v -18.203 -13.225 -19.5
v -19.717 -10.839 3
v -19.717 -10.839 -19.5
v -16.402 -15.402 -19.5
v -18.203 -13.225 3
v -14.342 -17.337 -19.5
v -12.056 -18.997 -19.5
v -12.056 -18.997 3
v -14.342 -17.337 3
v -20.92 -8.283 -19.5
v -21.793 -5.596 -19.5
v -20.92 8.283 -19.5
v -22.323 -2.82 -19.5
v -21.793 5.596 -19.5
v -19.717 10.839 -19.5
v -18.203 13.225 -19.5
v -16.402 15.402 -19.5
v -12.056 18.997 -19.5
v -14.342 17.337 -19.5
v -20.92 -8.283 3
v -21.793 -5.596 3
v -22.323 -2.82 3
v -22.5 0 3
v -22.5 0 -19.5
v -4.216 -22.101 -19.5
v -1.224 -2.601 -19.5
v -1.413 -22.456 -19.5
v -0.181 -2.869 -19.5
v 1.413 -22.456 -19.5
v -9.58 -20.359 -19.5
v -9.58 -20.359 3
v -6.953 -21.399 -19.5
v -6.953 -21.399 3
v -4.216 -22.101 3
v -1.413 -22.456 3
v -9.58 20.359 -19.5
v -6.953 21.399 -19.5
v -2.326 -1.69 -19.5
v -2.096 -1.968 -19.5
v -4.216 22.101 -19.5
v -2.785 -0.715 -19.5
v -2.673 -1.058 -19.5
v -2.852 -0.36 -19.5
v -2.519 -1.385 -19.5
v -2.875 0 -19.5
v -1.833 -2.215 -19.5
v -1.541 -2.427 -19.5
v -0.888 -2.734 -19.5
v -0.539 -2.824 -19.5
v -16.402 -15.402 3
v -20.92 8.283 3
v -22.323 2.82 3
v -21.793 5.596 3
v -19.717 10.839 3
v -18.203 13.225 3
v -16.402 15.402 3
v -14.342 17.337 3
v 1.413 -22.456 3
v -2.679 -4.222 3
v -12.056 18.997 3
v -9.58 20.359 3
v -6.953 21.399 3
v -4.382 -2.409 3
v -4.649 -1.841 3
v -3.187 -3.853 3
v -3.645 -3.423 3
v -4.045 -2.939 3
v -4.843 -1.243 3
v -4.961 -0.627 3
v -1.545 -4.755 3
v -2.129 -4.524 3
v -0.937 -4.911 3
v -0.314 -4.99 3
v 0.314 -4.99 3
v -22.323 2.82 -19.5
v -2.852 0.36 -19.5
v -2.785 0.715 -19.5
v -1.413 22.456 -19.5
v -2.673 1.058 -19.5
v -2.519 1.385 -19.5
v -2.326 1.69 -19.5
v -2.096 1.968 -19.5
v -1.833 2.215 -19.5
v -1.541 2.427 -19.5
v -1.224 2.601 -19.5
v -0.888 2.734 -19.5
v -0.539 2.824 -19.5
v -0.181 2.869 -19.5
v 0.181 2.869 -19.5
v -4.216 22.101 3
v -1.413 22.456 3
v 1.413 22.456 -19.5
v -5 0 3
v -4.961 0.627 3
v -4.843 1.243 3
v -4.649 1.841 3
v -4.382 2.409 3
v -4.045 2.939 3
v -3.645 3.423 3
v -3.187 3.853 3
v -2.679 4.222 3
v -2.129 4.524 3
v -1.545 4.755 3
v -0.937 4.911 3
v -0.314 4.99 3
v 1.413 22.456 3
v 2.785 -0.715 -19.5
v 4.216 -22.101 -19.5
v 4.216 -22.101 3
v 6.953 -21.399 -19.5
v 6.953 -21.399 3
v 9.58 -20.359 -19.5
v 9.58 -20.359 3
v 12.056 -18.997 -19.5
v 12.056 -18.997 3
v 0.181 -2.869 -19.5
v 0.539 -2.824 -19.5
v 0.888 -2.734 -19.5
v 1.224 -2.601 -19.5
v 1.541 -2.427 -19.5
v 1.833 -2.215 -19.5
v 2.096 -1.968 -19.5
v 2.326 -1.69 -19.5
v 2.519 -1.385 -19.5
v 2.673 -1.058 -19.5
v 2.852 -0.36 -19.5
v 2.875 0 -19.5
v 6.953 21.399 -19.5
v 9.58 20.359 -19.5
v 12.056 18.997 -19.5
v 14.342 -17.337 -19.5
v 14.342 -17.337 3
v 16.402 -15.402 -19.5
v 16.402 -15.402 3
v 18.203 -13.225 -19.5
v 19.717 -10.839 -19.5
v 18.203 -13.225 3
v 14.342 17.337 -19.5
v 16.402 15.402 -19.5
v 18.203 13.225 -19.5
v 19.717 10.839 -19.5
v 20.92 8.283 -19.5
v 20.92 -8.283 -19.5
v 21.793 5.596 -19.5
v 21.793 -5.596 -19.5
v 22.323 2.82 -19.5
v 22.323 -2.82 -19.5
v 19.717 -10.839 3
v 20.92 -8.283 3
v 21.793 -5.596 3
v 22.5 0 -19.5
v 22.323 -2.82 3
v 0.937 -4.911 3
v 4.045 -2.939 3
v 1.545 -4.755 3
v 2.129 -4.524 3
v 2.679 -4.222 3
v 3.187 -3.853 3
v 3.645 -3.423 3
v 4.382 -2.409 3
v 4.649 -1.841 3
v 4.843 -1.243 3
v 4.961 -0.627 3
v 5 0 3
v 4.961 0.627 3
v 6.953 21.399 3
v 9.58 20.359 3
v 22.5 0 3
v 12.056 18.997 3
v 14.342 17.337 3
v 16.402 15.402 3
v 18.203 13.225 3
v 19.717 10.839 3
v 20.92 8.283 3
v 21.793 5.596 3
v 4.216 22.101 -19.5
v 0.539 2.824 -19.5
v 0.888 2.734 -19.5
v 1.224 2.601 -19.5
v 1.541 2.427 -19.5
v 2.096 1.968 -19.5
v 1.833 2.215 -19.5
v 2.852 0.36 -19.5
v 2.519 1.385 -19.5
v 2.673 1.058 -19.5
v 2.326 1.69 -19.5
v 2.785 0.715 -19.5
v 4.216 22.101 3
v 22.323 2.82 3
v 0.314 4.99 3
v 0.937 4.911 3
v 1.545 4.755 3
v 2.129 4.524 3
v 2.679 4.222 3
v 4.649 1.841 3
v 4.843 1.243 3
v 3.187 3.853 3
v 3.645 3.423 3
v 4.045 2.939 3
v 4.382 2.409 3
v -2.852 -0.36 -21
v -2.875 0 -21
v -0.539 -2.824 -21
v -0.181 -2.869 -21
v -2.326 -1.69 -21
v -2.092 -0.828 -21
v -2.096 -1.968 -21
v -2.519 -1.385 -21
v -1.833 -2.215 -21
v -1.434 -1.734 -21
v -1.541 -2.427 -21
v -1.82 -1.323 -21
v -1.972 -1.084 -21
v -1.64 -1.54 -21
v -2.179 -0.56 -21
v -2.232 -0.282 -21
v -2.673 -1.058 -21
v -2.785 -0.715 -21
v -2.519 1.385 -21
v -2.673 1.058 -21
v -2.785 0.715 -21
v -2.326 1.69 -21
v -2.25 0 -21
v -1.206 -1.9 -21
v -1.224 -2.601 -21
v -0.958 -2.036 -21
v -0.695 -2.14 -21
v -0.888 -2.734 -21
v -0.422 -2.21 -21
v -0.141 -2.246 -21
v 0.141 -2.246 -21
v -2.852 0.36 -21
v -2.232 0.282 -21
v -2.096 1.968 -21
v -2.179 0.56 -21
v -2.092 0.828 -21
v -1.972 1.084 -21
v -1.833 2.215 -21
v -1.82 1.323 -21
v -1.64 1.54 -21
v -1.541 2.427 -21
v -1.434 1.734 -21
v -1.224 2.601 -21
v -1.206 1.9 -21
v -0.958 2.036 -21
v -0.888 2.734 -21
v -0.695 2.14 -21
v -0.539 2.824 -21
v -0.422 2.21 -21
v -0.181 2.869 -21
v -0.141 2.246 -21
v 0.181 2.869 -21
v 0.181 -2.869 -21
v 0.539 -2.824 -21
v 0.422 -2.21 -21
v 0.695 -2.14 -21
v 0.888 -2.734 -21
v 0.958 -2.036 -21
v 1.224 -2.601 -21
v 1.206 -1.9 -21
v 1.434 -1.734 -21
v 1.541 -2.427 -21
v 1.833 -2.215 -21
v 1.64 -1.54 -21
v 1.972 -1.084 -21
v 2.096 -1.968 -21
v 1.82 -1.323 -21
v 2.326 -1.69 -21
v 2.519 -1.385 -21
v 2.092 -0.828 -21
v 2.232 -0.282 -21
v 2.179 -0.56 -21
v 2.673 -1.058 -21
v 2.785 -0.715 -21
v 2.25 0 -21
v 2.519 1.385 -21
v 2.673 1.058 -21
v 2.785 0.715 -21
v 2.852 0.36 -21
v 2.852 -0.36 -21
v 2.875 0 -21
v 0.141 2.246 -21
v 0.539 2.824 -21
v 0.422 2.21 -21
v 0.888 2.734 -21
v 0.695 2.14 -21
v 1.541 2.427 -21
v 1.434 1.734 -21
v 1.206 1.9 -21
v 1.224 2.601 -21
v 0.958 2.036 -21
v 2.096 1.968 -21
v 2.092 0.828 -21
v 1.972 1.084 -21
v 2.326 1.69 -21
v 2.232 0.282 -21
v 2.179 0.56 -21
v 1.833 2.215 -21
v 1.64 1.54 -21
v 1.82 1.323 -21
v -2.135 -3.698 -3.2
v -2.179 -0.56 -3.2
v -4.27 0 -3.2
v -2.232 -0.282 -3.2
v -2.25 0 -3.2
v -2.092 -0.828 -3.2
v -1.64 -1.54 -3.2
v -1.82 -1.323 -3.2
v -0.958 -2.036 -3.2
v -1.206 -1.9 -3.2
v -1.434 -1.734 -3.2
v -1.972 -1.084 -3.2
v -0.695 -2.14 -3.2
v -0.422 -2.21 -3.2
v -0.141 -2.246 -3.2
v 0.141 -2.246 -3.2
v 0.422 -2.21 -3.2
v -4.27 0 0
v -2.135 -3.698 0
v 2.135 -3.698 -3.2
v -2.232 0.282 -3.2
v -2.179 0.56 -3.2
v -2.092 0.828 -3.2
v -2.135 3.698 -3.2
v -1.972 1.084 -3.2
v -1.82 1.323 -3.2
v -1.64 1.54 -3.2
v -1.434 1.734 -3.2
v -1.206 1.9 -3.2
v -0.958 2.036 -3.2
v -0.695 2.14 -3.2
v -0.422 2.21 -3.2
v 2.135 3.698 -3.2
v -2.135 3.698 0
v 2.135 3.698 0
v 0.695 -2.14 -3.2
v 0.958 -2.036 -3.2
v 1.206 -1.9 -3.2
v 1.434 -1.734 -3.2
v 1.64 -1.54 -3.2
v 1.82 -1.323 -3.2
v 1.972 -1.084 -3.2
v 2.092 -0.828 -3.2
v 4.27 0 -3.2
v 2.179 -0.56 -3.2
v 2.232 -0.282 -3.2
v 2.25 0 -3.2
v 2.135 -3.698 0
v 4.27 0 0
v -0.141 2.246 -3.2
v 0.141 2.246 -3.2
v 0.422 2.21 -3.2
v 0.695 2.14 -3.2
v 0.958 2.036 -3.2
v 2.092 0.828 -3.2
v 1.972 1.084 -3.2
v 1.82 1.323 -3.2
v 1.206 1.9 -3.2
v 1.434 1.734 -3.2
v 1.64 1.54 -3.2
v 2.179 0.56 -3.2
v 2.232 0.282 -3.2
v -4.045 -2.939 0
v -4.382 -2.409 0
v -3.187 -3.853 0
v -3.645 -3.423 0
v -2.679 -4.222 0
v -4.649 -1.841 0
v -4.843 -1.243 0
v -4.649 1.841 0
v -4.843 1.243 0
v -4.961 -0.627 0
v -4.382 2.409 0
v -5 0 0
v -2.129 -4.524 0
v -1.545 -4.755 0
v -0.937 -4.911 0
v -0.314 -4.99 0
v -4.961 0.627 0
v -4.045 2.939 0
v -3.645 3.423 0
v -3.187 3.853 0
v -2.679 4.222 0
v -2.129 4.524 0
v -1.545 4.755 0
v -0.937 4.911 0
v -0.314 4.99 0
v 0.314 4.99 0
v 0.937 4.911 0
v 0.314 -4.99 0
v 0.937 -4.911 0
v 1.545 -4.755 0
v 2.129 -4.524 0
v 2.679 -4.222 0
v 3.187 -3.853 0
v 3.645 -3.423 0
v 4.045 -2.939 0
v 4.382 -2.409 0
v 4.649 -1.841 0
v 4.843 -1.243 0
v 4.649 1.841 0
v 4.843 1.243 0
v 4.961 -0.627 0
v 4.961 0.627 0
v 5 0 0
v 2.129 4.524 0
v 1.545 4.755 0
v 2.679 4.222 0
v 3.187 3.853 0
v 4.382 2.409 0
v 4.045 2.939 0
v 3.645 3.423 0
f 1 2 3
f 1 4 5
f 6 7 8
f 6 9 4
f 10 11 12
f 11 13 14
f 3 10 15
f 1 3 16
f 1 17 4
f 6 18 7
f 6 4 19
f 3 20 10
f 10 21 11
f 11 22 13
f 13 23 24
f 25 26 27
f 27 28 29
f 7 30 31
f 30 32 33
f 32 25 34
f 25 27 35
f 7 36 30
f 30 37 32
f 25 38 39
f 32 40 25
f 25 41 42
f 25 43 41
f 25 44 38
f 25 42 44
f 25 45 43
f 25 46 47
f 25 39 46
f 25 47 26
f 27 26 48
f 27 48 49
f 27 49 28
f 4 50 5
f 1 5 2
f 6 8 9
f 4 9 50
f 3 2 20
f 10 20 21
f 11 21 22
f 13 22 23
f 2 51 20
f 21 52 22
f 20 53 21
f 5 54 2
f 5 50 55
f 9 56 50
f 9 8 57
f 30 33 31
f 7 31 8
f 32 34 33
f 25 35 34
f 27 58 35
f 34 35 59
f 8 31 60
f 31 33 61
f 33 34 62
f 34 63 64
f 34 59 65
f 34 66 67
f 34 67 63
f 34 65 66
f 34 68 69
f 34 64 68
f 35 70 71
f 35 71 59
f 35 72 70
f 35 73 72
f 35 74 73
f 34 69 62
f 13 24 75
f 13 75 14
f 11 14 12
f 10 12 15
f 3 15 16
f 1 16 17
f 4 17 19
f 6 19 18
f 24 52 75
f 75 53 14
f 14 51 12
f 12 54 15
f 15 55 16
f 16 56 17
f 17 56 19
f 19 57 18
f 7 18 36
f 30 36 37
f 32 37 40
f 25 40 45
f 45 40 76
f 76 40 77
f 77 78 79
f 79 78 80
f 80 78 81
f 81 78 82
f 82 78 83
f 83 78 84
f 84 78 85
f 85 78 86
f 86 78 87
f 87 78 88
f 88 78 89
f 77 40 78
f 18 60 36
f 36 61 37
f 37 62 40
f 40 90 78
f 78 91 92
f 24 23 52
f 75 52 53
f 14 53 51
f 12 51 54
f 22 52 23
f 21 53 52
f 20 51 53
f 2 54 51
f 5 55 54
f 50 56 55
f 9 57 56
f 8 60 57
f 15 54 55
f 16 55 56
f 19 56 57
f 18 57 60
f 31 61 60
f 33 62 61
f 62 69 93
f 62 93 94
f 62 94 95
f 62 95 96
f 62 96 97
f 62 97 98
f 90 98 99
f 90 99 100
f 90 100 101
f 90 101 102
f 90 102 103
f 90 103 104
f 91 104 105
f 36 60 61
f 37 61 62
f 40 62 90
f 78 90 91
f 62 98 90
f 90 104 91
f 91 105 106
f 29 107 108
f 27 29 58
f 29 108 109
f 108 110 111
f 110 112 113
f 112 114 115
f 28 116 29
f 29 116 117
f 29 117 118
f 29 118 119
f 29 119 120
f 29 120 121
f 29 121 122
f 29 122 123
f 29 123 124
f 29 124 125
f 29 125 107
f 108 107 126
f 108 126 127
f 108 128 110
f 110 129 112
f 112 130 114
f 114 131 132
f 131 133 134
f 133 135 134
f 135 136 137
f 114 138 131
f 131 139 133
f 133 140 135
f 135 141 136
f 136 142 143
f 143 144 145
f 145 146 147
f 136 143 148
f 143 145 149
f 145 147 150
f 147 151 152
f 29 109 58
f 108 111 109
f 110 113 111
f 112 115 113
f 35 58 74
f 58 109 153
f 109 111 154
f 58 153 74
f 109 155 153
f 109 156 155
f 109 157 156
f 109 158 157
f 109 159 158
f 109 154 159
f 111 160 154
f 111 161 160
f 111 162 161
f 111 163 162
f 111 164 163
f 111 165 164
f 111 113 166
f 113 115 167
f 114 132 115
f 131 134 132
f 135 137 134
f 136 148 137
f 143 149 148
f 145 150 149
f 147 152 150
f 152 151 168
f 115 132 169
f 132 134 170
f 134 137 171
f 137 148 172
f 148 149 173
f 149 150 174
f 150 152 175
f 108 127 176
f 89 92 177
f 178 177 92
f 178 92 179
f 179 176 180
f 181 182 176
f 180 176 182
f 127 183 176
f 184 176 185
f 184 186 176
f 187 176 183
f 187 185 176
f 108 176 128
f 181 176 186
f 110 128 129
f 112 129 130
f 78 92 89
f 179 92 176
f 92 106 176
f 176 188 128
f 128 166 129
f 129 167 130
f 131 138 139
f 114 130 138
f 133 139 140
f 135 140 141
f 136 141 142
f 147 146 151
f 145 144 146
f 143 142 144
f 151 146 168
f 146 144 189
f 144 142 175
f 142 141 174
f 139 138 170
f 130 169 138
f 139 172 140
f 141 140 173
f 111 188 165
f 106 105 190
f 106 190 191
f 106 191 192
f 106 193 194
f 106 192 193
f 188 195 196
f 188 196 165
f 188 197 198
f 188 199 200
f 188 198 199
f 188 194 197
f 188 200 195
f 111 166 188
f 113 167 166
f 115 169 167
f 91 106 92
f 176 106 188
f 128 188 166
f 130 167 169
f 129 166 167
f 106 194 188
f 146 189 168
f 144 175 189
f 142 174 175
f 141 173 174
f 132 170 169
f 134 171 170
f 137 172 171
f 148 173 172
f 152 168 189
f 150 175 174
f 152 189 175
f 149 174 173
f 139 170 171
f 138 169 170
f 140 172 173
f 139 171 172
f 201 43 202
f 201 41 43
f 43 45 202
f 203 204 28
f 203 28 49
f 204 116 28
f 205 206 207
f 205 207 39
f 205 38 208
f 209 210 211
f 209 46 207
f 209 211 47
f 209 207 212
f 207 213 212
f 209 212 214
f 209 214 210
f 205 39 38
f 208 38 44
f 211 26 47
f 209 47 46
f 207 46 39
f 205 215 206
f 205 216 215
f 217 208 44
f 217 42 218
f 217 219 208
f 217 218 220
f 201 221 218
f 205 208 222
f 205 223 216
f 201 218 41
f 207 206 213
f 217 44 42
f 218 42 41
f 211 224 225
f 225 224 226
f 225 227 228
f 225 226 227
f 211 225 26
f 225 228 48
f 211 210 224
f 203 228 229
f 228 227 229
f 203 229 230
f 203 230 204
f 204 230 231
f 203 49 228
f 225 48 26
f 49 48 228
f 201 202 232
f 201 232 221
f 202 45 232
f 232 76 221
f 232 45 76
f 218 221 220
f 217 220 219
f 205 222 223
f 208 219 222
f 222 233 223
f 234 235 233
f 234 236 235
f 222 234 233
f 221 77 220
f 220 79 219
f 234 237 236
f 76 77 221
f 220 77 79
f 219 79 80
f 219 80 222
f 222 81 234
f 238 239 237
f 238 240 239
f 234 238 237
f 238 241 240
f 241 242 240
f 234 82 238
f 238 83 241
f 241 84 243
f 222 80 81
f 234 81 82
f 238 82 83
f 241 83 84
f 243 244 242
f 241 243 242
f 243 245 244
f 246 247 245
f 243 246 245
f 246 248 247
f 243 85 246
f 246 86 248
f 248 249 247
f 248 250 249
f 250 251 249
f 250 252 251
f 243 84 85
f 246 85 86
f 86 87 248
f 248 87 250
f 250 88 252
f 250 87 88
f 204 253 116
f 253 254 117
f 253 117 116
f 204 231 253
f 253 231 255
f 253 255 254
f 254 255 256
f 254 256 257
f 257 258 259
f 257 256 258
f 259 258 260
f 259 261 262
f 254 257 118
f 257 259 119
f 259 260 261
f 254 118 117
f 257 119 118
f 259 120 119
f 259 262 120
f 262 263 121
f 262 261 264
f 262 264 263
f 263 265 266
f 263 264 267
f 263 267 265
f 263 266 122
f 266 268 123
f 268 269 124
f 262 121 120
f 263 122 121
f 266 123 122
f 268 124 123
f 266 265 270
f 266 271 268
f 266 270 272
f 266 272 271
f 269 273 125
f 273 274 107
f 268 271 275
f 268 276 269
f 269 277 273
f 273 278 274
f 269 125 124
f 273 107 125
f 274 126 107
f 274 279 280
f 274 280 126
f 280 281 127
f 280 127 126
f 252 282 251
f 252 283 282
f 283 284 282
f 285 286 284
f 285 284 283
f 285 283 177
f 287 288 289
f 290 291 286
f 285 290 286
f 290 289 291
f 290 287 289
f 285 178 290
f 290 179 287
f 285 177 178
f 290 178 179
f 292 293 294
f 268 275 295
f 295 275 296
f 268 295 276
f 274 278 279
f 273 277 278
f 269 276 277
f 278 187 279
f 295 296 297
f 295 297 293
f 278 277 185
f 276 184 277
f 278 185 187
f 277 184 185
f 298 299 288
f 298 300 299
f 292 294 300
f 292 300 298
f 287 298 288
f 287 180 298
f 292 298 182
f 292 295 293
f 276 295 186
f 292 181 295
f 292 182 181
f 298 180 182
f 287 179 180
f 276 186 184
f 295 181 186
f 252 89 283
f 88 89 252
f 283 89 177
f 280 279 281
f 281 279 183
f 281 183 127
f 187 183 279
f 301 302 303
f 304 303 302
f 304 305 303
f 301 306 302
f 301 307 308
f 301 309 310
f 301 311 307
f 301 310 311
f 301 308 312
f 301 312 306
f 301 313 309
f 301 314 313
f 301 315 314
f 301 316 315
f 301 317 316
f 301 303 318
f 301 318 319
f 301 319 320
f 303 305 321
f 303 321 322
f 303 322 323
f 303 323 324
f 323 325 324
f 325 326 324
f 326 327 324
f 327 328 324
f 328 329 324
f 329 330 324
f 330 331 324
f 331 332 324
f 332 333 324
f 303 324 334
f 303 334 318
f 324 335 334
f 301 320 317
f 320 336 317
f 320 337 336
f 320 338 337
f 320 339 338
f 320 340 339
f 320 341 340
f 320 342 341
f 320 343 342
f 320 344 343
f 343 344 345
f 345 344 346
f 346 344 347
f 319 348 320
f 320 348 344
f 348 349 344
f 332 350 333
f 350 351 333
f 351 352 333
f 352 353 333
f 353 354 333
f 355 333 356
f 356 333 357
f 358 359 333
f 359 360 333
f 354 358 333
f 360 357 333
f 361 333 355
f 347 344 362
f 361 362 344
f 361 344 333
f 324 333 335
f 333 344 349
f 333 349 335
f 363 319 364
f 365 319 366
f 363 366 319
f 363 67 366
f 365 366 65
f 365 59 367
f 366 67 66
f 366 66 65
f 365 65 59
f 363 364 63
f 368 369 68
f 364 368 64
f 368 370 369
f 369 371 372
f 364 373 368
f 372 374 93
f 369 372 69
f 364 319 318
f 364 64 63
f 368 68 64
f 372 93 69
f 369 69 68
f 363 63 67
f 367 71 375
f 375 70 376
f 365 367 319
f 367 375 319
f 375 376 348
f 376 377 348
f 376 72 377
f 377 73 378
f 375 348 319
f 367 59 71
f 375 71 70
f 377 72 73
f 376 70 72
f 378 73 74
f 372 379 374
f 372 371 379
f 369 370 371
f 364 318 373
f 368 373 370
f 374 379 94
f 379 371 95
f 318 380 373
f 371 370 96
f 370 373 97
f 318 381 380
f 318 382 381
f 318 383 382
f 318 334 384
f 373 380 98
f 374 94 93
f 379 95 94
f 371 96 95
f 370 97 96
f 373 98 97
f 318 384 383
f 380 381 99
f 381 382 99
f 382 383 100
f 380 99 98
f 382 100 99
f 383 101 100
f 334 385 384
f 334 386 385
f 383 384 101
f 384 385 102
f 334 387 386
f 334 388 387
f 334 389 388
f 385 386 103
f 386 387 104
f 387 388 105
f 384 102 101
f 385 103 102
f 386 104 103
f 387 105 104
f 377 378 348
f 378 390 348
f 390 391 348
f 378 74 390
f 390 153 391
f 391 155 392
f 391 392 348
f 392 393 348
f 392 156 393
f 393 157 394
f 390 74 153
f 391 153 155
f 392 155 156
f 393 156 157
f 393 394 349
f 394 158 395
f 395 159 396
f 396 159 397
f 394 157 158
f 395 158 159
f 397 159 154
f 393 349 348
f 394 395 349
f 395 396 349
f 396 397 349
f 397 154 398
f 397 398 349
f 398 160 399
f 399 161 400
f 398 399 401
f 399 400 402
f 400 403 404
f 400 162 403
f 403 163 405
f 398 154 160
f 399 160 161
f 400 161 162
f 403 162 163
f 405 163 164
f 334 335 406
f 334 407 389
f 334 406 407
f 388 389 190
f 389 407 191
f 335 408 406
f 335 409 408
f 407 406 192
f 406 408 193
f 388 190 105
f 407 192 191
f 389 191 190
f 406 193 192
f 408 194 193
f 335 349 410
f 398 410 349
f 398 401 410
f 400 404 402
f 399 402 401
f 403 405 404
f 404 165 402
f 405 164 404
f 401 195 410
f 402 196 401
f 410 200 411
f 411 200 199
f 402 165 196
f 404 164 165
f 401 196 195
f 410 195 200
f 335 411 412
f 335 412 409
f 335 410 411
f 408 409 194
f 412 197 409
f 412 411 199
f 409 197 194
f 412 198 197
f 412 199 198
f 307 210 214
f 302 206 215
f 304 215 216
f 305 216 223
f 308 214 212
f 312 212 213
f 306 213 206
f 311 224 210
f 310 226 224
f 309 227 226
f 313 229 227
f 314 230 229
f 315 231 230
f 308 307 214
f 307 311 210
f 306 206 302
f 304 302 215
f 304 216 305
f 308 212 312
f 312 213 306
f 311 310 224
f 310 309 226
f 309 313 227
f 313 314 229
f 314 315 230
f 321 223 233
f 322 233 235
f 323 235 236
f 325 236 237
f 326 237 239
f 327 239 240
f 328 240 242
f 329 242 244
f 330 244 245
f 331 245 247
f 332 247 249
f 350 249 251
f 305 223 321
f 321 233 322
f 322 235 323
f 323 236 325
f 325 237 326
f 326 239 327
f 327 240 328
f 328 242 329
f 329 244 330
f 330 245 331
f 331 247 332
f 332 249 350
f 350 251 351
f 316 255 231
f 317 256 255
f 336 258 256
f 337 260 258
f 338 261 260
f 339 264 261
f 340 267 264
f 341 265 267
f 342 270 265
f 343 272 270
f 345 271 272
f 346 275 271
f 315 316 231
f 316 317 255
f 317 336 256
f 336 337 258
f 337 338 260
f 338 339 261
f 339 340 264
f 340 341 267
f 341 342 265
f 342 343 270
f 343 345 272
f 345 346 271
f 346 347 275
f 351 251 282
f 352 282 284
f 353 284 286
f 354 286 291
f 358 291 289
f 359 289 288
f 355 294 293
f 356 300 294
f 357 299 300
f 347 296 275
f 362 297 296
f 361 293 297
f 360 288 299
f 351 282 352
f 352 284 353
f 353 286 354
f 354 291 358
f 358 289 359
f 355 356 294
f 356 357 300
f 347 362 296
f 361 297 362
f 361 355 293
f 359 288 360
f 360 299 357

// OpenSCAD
$fn = 50;


difference() {
	union() {
		translate(v = [0, 0, -19.5000000000]) {
			cylinder(h = 22.5000000000, r = 22.5000000000);
		}
		#translate(v = [0, 0, -21.0000000000]) {
			cylinder(h = 21, r = 2.8750000000);
		}
	}
	union() {
		translate(v = [0, 0, 0]) {
			rotate(a = [0, 0, 0]) {
				difference() {
					union() {
						translate(v = [0, 0, -3.2000000000]) {
							linear_extrude(height = 3.2000000000) {
								polygon(points = [[4.2698000000, 0.0000000000], [2.1349000000, 3.6977552691], [-2.1349000000, 3.6977552691], [-4.2698000000, 0.0000000000], [-2.1349000000, -3.6977552691], [2.1349000000, -3.6977552691]]);
							}
						}
					}
					union();
				}
			}
		}
		#cylinder(h = 3, r = 5.0000000000);
		#translate(v = [0, 0, -100.0000000000]) {
			cylinder(h = 200, r = 2.2500000000);
		}
	}
}
